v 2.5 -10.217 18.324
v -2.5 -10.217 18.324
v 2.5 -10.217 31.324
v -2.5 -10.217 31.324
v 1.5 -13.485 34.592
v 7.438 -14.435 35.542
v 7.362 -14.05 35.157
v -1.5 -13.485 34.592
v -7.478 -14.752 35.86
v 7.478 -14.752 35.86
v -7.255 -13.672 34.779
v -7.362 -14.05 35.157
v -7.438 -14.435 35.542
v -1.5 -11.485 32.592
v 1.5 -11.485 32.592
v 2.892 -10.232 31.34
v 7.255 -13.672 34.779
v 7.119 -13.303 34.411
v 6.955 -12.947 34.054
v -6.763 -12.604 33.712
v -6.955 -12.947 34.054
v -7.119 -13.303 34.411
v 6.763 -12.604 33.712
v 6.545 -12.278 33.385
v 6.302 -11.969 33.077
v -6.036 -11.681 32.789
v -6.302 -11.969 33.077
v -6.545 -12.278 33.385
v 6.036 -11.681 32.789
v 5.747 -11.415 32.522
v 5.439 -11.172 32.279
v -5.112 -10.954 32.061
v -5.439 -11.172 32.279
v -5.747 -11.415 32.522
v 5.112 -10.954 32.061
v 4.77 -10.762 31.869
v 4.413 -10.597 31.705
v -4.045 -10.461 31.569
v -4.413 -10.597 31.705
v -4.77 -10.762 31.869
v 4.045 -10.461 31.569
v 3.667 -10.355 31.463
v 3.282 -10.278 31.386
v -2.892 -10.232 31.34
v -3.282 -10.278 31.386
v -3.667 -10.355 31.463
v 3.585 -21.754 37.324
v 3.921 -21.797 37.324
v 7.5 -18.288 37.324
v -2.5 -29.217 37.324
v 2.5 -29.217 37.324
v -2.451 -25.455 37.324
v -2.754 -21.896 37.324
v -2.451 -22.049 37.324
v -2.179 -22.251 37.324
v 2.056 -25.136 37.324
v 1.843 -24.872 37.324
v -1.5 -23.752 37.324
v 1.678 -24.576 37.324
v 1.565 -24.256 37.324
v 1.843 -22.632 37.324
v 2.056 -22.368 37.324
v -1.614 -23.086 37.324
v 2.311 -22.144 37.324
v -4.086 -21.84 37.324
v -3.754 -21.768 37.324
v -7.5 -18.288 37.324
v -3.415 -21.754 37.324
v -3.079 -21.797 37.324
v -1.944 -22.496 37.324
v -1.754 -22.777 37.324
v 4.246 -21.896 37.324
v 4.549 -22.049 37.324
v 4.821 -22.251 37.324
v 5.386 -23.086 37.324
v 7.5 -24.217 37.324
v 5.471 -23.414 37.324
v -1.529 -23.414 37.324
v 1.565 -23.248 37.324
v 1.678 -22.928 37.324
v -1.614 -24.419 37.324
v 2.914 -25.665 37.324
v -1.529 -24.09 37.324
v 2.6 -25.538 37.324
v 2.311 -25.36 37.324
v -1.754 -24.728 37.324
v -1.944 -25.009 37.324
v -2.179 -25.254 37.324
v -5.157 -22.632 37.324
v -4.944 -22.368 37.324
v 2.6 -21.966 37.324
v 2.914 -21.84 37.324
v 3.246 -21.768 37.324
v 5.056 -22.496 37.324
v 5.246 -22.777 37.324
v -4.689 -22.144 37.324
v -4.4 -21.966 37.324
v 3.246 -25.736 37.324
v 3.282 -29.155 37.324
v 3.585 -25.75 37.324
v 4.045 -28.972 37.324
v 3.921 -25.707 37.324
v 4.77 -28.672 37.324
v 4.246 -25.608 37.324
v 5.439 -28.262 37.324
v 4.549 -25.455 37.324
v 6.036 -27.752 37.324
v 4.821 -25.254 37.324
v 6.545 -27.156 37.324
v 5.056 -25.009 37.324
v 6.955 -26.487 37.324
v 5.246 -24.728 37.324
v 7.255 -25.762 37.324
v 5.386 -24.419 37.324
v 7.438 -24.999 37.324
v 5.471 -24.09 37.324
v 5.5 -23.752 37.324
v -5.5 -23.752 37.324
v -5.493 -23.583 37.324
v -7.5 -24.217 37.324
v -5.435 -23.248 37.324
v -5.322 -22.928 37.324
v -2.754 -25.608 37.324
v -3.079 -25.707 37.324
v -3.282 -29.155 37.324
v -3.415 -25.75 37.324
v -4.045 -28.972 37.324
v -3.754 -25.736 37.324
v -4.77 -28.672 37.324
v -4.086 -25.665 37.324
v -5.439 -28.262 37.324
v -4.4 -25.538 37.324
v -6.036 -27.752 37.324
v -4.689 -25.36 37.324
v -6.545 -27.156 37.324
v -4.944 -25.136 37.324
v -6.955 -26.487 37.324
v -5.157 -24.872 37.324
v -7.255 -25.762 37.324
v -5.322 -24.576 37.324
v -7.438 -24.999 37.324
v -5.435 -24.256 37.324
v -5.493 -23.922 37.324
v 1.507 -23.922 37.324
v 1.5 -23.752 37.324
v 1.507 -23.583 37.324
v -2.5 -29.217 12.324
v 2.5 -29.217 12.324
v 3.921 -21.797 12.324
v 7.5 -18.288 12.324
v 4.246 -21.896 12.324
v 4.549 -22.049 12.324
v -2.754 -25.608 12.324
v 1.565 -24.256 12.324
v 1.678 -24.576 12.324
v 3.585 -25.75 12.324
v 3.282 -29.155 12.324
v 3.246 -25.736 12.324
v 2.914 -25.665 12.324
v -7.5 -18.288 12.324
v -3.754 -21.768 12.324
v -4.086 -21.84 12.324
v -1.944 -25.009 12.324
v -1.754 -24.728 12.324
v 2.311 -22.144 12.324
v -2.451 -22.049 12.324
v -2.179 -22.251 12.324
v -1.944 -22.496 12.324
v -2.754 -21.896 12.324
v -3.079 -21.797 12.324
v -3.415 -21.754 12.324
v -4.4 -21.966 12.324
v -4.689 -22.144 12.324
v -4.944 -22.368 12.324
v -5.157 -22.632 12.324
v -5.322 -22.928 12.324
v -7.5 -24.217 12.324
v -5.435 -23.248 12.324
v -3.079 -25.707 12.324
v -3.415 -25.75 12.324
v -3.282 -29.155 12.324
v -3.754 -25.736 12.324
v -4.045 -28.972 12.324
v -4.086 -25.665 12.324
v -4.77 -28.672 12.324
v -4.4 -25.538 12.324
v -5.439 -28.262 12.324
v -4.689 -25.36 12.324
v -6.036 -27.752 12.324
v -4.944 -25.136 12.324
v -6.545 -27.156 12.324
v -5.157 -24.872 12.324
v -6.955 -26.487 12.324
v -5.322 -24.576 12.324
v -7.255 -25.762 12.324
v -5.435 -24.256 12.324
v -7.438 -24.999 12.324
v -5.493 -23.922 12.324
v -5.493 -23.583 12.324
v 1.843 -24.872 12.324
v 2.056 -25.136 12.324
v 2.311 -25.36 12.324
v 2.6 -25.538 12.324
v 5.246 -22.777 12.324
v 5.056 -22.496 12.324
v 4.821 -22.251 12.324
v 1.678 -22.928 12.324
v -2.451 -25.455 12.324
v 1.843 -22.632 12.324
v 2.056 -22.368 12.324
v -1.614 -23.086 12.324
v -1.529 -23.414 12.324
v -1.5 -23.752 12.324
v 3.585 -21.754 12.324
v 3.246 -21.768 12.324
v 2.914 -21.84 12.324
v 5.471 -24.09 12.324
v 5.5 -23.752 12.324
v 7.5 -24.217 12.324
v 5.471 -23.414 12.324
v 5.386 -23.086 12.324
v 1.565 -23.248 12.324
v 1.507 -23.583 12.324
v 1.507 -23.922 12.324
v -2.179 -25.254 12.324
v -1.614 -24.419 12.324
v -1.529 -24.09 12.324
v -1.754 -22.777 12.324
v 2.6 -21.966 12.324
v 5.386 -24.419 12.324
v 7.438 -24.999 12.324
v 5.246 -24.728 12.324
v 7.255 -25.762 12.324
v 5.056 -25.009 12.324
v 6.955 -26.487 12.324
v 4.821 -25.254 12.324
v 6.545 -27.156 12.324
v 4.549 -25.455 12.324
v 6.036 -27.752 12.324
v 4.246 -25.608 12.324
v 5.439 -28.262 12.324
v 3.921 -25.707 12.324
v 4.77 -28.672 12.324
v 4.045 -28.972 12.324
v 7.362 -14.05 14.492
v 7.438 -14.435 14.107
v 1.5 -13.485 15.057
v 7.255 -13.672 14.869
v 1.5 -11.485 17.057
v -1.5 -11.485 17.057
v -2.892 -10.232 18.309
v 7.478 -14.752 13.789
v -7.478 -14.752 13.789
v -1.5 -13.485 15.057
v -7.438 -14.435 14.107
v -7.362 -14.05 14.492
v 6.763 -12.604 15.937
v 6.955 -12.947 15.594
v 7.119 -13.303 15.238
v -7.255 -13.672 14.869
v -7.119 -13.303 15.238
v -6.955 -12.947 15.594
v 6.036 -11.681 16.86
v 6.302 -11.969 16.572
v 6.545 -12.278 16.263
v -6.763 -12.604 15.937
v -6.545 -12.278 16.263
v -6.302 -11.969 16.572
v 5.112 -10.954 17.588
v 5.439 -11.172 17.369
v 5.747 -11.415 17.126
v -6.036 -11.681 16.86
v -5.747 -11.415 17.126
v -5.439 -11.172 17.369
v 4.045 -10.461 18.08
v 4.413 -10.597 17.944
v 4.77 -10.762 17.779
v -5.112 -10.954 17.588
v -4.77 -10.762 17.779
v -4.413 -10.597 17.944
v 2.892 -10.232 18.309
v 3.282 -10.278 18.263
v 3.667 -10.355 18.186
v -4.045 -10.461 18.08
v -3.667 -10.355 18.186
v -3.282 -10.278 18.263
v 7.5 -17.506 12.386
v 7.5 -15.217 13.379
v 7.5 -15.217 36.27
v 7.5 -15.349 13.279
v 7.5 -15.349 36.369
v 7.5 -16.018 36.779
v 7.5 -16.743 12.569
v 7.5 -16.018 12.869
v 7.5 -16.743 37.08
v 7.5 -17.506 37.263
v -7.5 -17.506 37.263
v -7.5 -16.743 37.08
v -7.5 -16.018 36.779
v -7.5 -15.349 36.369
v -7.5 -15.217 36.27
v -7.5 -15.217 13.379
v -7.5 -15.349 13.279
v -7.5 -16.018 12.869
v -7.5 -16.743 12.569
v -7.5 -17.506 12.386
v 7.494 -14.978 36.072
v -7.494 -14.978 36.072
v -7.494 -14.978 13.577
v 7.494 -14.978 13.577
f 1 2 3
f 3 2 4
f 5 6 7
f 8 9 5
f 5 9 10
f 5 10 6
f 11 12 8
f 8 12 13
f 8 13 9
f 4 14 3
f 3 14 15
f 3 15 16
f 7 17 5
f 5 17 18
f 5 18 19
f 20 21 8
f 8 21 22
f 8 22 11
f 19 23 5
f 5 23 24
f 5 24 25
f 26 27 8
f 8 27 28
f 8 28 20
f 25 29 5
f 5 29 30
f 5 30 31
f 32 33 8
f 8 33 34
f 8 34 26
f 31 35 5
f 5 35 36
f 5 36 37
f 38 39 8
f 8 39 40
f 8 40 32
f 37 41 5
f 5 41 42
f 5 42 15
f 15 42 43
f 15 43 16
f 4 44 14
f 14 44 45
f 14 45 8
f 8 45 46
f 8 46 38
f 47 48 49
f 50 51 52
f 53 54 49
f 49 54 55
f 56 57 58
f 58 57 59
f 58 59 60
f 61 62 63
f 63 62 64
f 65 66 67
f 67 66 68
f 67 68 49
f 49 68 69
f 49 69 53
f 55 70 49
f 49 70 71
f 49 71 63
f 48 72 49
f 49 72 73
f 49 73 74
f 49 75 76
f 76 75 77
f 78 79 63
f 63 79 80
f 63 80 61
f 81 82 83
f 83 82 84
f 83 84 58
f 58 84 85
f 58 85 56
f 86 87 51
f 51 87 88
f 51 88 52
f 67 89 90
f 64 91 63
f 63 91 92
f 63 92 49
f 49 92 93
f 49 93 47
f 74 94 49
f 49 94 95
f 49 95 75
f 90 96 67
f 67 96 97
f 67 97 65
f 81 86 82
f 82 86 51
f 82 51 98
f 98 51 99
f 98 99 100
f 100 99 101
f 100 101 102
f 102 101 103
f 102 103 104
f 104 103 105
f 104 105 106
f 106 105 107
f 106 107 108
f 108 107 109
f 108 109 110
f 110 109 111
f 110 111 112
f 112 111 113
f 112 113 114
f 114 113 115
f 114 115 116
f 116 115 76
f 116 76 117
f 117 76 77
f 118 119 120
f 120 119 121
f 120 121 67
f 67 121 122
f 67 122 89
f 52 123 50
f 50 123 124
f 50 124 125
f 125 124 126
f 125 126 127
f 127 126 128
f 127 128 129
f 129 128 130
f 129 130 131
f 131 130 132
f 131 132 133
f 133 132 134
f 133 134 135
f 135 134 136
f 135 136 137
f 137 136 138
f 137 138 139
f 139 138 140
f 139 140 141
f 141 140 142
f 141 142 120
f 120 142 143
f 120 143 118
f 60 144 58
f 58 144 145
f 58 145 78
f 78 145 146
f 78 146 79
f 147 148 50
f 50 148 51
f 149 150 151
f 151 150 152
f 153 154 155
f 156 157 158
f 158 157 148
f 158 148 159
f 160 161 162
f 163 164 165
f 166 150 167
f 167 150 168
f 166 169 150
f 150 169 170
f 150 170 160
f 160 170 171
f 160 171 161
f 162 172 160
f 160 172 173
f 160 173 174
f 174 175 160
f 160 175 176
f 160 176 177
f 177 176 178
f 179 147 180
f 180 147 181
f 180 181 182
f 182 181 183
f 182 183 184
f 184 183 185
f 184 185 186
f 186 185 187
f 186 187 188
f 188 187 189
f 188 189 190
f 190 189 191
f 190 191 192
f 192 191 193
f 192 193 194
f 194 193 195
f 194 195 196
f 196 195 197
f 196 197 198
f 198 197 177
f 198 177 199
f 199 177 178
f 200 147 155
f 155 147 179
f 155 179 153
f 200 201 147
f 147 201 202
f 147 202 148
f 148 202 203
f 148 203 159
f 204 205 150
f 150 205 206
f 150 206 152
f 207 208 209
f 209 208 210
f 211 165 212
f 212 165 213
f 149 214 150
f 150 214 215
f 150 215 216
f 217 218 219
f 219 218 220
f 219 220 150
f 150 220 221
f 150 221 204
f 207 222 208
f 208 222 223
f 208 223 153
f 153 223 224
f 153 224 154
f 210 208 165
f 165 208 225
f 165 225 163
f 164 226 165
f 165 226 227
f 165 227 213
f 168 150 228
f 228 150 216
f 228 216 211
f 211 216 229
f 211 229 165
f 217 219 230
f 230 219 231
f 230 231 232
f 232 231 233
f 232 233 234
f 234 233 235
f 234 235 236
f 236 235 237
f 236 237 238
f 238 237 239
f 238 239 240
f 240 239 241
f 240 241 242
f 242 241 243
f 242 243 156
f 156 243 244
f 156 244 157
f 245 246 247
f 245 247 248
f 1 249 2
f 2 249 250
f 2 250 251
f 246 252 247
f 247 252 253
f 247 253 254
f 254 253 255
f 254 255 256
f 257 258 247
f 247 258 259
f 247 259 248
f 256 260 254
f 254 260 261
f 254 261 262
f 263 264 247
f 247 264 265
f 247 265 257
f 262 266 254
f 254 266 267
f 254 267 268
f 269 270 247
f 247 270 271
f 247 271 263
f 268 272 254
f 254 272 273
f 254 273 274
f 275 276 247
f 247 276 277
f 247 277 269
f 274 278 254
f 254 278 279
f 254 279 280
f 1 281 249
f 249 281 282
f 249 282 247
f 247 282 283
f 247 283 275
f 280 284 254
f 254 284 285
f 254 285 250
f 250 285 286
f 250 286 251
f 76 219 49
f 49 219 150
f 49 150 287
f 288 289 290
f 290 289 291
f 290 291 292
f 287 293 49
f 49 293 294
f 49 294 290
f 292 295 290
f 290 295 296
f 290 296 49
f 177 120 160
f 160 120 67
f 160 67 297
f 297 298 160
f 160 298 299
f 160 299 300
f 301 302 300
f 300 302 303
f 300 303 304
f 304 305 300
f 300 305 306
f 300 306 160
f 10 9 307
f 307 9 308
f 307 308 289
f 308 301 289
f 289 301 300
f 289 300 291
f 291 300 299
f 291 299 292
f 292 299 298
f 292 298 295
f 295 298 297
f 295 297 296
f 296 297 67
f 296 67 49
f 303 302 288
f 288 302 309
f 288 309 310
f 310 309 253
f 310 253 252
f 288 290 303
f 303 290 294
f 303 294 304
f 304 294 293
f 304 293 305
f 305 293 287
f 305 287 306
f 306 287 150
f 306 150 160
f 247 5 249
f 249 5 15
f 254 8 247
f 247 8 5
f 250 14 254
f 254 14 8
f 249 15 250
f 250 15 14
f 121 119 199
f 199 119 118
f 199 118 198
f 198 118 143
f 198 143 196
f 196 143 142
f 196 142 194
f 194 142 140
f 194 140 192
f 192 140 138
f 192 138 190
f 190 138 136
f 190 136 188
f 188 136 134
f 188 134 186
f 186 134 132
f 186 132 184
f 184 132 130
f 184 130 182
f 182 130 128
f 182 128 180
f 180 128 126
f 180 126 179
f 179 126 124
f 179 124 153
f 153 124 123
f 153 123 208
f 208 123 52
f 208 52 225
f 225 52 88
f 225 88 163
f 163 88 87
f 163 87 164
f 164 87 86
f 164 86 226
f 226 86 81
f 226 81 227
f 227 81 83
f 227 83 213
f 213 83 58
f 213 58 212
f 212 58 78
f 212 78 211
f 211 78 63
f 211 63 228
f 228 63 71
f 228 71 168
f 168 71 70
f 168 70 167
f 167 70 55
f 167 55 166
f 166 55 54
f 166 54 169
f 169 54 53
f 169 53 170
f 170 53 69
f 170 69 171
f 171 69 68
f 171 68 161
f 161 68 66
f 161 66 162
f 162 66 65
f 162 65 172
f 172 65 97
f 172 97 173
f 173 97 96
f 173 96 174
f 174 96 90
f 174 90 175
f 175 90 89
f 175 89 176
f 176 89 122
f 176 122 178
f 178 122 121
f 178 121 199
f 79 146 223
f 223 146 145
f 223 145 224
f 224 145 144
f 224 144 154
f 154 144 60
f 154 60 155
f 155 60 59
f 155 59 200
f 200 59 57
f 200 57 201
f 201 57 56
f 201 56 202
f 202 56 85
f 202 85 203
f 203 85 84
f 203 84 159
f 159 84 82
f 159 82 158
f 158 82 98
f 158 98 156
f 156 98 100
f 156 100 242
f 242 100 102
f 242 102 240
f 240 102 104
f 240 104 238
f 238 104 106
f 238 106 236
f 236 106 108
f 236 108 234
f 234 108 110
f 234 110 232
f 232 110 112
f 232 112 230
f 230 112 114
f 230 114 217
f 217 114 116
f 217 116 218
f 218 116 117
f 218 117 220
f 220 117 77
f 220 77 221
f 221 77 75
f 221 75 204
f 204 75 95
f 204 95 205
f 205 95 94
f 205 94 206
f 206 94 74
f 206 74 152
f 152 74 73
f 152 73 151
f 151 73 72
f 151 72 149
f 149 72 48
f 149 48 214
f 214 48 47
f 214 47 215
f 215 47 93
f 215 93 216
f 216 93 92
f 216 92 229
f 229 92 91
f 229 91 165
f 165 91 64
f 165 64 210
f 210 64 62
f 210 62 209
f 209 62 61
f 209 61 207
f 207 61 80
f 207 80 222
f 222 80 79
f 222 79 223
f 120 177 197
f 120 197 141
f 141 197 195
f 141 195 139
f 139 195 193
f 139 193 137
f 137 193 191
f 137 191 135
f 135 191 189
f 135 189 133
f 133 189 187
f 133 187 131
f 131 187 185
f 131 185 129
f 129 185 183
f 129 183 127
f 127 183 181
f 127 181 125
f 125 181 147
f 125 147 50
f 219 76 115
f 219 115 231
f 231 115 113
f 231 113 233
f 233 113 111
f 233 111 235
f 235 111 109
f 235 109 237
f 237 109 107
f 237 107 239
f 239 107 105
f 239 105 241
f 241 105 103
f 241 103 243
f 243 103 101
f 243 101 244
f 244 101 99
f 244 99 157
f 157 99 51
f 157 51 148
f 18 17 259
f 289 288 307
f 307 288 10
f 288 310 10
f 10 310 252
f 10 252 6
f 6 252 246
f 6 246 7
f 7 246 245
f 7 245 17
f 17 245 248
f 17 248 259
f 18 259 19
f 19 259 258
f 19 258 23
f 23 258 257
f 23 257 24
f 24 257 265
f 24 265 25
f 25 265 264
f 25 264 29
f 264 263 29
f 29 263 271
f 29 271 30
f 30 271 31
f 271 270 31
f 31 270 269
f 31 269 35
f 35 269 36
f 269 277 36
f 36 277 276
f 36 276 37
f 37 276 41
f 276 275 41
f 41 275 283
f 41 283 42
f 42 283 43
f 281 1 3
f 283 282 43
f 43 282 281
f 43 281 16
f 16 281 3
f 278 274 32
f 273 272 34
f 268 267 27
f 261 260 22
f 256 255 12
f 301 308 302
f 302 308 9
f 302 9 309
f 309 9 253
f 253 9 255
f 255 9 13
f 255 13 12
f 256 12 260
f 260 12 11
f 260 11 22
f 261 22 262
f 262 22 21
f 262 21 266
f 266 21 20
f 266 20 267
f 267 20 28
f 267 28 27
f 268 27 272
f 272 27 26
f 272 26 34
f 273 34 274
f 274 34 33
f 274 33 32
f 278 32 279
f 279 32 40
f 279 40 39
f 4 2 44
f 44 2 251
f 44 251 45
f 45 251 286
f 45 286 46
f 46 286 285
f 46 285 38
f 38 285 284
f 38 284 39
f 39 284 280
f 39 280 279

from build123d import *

# Parameters (mm, degrees)
BOSS_EXTRUDE1_DEPTH = 7.5
FILLET3_R           = 5
SKETCH4_R           = 2
SKETCH4_W           = 3
SKETCH4_H           = 2
CUT_EXTRUDE1_DEPTH  = 100
FILLET4_R           = 5
FILLET5_R           = 5


with BuildPart() as part:
    # Sketch1 → Boss-Extrude1 (new, symmetric)
    with BuildSketch(Plane(origin=(0, 0, 0), x_dir=(0, 0, -1), z_dir=(1, 0, 0))):
        Polygon((-31.324369962, -10.21673477), (-37.324369962, -16.21673477), (-37.324369962, -29.21673477), (-12.324369962, -29.21673477), (-12.324369962, -16.21673477), (-18.324369962, -10.21673477), align=None)
    extrude(amount=BOSS_EXTRUDE1_DEPTH, both=True)

    # Fillet3
    fillet3_edges = [part.edges().sort_by_distance(p)[0] for p in [
        (0, -16.21673477, 12.324369962),
        (0, -16.21673477, 37.324369962),
    ]]
    fillet(fillet3_edges, radius=FILLET3_R)

    # Sketch4 → Cut-Extrude1 (cut, symmetric)
    with BuildSketch(Plane.XY):
        with Locations((-3.5, -23.752268676)):
            Circle(SKETCH4_R)
        with Locations((3.5, -23.752268676)):
            Circle(SKETCH4_R)
        with Locations((0, -12.484501723)):
            Rectangle(SKETCH4_W, SKETCH4_H)
    extrude(amount=CUT_EXTRUDE1_DEPTH, both=True, mode=Mode.SUBTRACT)

    # Fillet4
    fillet4_edges = [part.edges().sort_by_distance(p)[0] for p in [
        (7.5, -29.21673477, 24.824369962),
        (-7.5, -29.21673477, 24.824369962),
    ]]
    fillet(fillet4_edges, radius=FILLET4_R)

    # Fillet5
    fillet5_edges = [part.edges().sort_by_distance(p)[0] for p in [
        (7.5, -10.21673477, 24.824369962),
        (-7.5, -10.21673477, 24.824369962),
    ]]
    fillet(fillet5_edges, radius=FILLET5_R)


solid = part.part
